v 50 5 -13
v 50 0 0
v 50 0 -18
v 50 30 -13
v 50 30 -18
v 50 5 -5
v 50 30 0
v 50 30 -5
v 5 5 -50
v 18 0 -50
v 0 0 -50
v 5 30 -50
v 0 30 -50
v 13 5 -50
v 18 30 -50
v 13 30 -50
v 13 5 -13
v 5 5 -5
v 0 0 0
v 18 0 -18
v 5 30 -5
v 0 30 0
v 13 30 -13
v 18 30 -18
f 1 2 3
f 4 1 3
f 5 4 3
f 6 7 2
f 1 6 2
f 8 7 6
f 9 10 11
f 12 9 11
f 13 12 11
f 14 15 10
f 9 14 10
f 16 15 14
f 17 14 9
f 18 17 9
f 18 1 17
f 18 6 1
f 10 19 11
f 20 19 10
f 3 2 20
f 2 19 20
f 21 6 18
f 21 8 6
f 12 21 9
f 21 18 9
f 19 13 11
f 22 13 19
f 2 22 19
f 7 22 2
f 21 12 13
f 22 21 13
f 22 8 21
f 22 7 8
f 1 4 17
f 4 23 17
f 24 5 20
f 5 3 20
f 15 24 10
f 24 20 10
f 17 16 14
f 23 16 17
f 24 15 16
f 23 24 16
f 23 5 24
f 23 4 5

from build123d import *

# Parameters (mm, degrees)
BOSS_EXTRUDE1_DEPTH = 5
BOSS_EXTRUDE2_DEPTH = 30


with BuildPart() as part:
    # Sketch1 → Boss-Extrude1 (new body)
    with BuildSketch(Plane(origin=(0, 0, 0), x_dir=(1, 0, 0), z_dir=(0, 1, 0))):
        Polygon((13, 50), (5, 50), (5, 5), (50, 5), (50, 13), (13, 13), align=None)
    extrude(amount=BOSS_EXTRUDE1_DEPTH)

    # Sketch1<3> → Boss-Extrude2 (add)
    with BuildSketch(Plane(origin=(0, 0, 0), x_dir=(1, 0, 0), z_dir=(0, 1, 0))):
        Polygon((0, 50), (0, 0), (50, 0), (50, 5), (5, 5), (5, 50), align=None)
        Polygon((18, 50), (13, 50), (13, 13), (50, 13), (50, 18), (18, 18), align=None)
    extrude(amount=BOSS_EXTRUDE2_DEPTH)


solid = part.part
